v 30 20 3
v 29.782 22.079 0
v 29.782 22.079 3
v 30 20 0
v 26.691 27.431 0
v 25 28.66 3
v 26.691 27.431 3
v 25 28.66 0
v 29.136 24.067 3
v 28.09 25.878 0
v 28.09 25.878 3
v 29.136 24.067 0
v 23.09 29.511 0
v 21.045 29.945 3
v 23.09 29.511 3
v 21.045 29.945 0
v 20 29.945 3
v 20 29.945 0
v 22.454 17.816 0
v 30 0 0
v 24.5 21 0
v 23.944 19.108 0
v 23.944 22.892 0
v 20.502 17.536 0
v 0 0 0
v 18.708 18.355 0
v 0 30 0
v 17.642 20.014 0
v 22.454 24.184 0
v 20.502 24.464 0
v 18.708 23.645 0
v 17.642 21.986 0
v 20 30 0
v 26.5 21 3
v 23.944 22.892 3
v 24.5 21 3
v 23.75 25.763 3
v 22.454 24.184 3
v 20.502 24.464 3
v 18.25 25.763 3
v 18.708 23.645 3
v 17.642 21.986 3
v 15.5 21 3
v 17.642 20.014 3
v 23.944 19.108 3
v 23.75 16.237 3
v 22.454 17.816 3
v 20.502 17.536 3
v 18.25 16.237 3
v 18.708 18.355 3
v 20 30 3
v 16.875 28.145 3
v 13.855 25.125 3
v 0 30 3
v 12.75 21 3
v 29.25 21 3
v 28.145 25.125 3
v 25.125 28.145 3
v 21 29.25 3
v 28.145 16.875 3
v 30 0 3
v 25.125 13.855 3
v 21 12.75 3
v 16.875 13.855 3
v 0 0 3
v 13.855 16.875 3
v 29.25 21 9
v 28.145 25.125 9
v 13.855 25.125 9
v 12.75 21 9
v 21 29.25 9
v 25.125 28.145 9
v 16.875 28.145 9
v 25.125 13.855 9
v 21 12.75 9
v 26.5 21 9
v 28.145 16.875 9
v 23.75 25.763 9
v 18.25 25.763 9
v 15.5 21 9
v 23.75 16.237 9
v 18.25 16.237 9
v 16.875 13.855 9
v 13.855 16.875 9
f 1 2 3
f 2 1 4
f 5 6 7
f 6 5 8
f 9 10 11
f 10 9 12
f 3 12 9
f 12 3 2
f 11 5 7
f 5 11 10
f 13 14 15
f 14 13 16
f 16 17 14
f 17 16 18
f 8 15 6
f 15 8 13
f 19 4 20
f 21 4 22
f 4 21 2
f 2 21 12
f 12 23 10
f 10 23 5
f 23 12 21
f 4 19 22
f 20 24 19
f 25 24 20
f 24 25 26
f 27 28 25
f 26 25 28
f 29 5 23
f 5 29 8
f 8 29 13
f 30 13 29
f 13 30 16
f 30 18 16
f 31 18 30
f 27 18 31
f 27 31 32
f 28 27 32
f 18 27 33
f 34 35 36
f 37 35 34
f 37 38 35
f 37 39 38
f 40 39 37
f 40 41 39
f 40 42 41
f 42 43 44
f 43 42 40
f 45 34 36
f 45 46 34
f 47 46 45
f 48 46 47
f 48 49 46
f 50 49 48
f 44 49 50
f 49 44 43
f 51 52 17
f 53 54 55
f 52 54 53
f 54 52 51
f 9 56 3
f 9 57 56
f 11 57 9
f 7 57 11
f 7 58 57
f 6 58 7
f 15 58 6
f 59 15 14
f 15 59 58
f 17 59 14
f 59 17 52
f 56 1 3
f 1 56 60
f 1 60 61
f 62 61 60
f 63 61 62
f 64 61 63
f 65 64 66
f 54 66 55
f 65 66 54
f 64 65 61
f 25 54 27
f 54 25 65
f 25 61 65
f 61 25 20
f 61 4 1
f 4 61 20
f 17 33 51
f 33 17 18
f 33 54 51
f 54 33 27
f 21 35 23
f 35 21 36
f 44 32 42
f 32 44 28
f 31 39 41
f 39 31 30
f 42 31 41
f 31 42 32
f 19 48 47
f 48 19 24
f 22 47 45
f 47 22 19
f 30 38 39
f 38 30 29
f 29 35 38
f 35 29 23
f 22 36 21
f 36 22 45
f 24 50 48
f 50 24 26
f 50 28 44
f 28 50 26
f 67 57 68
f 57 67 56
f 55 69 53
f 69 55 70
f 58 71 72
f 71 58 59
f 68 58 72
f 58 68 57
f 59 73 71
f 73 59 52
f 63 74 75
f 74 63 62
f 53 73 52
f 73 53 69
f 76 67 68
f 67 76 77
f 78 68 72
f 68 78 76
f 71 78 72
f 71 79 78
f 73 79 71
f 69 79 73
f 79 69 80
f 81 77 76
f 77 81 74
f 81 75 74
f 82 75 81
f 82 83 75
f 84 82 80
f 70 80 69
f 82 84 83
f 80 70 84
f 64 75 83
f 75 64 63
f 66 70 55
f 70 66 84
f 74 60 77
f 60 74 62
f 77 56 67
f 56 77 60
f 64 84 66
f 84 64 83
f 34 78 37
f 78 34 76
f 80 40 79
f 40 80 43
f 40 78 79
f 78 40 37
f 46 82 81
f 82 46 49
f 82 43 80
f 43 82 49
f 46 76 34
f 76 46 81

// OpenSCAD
lengte = 80;
hoogte = 30;
dikte = 3;
boorDiameter = 7;
m6Diameter = 11;
m6Hoogte = 6;
zijkantRadius=10;

module moerHouder(randFactor=2) {
    difference() {
        cylinder(d=m6Diameter*randFactor, h=m6Hoogte, $fn=12);
        cylinder(d=m6Diameter, h=m6Hoogte, $fn=6);
    }
}

module zijkant() {
    gatX = hoogte*0.7;
    gatY = hoogte*0.7;
    union() {
        difference() {
            union() {
                translate([hoogte-zijkantRadius,hoogte-zijkantRadius,0]) cylinder(r=zijkantRadius, h=dikte);
                cube([hoogte-zijkantRadius,hoogte-zijkantRadius,dikte]);
                cube([hoogte,hoogte-zijkantRadius,dikte]);
                cube([hoogte-zijkantRadius,hoogte,dikte]);
            }
            translate([gatX,gatY,0]) cylinder(d=boorDiameter, h=dikte, center=false);
        }
        translate([gatX,gatY,dikte]) moerHouder(1.5);
    }
}

module zijkantLinks() {
    mirror() rotate([0,-90,0]) zijkant();
}

module zijkantRechts() {
    translate([lengte,0,0]) rotate([0,-90,0]) zijkant();
}

module bovenkant() {
    gatX = (lengte/2) - (boorDiameter/2);
    gatY = hoogte/2;
    union() {
        difference() {
            cube([lengte, hoogte, dikte]);
            translate([gatX,gatY,0]) cylinder(d=boorDiameter, h=dikte, center=false);
        }
        translate([gatX,gatY,dikte]) moerHouder();
    }
}

module voorkant() {
    translate([lengte,0,hoogte]) mirror([0,1,0]) rotate([90,180,0]) bovenkant();
}

module all() {
    union() {
        zijkantLinks();
        bovenkant();
        voorkant();
        zijkantRechts();
    }
}

zijkant();
//all();
